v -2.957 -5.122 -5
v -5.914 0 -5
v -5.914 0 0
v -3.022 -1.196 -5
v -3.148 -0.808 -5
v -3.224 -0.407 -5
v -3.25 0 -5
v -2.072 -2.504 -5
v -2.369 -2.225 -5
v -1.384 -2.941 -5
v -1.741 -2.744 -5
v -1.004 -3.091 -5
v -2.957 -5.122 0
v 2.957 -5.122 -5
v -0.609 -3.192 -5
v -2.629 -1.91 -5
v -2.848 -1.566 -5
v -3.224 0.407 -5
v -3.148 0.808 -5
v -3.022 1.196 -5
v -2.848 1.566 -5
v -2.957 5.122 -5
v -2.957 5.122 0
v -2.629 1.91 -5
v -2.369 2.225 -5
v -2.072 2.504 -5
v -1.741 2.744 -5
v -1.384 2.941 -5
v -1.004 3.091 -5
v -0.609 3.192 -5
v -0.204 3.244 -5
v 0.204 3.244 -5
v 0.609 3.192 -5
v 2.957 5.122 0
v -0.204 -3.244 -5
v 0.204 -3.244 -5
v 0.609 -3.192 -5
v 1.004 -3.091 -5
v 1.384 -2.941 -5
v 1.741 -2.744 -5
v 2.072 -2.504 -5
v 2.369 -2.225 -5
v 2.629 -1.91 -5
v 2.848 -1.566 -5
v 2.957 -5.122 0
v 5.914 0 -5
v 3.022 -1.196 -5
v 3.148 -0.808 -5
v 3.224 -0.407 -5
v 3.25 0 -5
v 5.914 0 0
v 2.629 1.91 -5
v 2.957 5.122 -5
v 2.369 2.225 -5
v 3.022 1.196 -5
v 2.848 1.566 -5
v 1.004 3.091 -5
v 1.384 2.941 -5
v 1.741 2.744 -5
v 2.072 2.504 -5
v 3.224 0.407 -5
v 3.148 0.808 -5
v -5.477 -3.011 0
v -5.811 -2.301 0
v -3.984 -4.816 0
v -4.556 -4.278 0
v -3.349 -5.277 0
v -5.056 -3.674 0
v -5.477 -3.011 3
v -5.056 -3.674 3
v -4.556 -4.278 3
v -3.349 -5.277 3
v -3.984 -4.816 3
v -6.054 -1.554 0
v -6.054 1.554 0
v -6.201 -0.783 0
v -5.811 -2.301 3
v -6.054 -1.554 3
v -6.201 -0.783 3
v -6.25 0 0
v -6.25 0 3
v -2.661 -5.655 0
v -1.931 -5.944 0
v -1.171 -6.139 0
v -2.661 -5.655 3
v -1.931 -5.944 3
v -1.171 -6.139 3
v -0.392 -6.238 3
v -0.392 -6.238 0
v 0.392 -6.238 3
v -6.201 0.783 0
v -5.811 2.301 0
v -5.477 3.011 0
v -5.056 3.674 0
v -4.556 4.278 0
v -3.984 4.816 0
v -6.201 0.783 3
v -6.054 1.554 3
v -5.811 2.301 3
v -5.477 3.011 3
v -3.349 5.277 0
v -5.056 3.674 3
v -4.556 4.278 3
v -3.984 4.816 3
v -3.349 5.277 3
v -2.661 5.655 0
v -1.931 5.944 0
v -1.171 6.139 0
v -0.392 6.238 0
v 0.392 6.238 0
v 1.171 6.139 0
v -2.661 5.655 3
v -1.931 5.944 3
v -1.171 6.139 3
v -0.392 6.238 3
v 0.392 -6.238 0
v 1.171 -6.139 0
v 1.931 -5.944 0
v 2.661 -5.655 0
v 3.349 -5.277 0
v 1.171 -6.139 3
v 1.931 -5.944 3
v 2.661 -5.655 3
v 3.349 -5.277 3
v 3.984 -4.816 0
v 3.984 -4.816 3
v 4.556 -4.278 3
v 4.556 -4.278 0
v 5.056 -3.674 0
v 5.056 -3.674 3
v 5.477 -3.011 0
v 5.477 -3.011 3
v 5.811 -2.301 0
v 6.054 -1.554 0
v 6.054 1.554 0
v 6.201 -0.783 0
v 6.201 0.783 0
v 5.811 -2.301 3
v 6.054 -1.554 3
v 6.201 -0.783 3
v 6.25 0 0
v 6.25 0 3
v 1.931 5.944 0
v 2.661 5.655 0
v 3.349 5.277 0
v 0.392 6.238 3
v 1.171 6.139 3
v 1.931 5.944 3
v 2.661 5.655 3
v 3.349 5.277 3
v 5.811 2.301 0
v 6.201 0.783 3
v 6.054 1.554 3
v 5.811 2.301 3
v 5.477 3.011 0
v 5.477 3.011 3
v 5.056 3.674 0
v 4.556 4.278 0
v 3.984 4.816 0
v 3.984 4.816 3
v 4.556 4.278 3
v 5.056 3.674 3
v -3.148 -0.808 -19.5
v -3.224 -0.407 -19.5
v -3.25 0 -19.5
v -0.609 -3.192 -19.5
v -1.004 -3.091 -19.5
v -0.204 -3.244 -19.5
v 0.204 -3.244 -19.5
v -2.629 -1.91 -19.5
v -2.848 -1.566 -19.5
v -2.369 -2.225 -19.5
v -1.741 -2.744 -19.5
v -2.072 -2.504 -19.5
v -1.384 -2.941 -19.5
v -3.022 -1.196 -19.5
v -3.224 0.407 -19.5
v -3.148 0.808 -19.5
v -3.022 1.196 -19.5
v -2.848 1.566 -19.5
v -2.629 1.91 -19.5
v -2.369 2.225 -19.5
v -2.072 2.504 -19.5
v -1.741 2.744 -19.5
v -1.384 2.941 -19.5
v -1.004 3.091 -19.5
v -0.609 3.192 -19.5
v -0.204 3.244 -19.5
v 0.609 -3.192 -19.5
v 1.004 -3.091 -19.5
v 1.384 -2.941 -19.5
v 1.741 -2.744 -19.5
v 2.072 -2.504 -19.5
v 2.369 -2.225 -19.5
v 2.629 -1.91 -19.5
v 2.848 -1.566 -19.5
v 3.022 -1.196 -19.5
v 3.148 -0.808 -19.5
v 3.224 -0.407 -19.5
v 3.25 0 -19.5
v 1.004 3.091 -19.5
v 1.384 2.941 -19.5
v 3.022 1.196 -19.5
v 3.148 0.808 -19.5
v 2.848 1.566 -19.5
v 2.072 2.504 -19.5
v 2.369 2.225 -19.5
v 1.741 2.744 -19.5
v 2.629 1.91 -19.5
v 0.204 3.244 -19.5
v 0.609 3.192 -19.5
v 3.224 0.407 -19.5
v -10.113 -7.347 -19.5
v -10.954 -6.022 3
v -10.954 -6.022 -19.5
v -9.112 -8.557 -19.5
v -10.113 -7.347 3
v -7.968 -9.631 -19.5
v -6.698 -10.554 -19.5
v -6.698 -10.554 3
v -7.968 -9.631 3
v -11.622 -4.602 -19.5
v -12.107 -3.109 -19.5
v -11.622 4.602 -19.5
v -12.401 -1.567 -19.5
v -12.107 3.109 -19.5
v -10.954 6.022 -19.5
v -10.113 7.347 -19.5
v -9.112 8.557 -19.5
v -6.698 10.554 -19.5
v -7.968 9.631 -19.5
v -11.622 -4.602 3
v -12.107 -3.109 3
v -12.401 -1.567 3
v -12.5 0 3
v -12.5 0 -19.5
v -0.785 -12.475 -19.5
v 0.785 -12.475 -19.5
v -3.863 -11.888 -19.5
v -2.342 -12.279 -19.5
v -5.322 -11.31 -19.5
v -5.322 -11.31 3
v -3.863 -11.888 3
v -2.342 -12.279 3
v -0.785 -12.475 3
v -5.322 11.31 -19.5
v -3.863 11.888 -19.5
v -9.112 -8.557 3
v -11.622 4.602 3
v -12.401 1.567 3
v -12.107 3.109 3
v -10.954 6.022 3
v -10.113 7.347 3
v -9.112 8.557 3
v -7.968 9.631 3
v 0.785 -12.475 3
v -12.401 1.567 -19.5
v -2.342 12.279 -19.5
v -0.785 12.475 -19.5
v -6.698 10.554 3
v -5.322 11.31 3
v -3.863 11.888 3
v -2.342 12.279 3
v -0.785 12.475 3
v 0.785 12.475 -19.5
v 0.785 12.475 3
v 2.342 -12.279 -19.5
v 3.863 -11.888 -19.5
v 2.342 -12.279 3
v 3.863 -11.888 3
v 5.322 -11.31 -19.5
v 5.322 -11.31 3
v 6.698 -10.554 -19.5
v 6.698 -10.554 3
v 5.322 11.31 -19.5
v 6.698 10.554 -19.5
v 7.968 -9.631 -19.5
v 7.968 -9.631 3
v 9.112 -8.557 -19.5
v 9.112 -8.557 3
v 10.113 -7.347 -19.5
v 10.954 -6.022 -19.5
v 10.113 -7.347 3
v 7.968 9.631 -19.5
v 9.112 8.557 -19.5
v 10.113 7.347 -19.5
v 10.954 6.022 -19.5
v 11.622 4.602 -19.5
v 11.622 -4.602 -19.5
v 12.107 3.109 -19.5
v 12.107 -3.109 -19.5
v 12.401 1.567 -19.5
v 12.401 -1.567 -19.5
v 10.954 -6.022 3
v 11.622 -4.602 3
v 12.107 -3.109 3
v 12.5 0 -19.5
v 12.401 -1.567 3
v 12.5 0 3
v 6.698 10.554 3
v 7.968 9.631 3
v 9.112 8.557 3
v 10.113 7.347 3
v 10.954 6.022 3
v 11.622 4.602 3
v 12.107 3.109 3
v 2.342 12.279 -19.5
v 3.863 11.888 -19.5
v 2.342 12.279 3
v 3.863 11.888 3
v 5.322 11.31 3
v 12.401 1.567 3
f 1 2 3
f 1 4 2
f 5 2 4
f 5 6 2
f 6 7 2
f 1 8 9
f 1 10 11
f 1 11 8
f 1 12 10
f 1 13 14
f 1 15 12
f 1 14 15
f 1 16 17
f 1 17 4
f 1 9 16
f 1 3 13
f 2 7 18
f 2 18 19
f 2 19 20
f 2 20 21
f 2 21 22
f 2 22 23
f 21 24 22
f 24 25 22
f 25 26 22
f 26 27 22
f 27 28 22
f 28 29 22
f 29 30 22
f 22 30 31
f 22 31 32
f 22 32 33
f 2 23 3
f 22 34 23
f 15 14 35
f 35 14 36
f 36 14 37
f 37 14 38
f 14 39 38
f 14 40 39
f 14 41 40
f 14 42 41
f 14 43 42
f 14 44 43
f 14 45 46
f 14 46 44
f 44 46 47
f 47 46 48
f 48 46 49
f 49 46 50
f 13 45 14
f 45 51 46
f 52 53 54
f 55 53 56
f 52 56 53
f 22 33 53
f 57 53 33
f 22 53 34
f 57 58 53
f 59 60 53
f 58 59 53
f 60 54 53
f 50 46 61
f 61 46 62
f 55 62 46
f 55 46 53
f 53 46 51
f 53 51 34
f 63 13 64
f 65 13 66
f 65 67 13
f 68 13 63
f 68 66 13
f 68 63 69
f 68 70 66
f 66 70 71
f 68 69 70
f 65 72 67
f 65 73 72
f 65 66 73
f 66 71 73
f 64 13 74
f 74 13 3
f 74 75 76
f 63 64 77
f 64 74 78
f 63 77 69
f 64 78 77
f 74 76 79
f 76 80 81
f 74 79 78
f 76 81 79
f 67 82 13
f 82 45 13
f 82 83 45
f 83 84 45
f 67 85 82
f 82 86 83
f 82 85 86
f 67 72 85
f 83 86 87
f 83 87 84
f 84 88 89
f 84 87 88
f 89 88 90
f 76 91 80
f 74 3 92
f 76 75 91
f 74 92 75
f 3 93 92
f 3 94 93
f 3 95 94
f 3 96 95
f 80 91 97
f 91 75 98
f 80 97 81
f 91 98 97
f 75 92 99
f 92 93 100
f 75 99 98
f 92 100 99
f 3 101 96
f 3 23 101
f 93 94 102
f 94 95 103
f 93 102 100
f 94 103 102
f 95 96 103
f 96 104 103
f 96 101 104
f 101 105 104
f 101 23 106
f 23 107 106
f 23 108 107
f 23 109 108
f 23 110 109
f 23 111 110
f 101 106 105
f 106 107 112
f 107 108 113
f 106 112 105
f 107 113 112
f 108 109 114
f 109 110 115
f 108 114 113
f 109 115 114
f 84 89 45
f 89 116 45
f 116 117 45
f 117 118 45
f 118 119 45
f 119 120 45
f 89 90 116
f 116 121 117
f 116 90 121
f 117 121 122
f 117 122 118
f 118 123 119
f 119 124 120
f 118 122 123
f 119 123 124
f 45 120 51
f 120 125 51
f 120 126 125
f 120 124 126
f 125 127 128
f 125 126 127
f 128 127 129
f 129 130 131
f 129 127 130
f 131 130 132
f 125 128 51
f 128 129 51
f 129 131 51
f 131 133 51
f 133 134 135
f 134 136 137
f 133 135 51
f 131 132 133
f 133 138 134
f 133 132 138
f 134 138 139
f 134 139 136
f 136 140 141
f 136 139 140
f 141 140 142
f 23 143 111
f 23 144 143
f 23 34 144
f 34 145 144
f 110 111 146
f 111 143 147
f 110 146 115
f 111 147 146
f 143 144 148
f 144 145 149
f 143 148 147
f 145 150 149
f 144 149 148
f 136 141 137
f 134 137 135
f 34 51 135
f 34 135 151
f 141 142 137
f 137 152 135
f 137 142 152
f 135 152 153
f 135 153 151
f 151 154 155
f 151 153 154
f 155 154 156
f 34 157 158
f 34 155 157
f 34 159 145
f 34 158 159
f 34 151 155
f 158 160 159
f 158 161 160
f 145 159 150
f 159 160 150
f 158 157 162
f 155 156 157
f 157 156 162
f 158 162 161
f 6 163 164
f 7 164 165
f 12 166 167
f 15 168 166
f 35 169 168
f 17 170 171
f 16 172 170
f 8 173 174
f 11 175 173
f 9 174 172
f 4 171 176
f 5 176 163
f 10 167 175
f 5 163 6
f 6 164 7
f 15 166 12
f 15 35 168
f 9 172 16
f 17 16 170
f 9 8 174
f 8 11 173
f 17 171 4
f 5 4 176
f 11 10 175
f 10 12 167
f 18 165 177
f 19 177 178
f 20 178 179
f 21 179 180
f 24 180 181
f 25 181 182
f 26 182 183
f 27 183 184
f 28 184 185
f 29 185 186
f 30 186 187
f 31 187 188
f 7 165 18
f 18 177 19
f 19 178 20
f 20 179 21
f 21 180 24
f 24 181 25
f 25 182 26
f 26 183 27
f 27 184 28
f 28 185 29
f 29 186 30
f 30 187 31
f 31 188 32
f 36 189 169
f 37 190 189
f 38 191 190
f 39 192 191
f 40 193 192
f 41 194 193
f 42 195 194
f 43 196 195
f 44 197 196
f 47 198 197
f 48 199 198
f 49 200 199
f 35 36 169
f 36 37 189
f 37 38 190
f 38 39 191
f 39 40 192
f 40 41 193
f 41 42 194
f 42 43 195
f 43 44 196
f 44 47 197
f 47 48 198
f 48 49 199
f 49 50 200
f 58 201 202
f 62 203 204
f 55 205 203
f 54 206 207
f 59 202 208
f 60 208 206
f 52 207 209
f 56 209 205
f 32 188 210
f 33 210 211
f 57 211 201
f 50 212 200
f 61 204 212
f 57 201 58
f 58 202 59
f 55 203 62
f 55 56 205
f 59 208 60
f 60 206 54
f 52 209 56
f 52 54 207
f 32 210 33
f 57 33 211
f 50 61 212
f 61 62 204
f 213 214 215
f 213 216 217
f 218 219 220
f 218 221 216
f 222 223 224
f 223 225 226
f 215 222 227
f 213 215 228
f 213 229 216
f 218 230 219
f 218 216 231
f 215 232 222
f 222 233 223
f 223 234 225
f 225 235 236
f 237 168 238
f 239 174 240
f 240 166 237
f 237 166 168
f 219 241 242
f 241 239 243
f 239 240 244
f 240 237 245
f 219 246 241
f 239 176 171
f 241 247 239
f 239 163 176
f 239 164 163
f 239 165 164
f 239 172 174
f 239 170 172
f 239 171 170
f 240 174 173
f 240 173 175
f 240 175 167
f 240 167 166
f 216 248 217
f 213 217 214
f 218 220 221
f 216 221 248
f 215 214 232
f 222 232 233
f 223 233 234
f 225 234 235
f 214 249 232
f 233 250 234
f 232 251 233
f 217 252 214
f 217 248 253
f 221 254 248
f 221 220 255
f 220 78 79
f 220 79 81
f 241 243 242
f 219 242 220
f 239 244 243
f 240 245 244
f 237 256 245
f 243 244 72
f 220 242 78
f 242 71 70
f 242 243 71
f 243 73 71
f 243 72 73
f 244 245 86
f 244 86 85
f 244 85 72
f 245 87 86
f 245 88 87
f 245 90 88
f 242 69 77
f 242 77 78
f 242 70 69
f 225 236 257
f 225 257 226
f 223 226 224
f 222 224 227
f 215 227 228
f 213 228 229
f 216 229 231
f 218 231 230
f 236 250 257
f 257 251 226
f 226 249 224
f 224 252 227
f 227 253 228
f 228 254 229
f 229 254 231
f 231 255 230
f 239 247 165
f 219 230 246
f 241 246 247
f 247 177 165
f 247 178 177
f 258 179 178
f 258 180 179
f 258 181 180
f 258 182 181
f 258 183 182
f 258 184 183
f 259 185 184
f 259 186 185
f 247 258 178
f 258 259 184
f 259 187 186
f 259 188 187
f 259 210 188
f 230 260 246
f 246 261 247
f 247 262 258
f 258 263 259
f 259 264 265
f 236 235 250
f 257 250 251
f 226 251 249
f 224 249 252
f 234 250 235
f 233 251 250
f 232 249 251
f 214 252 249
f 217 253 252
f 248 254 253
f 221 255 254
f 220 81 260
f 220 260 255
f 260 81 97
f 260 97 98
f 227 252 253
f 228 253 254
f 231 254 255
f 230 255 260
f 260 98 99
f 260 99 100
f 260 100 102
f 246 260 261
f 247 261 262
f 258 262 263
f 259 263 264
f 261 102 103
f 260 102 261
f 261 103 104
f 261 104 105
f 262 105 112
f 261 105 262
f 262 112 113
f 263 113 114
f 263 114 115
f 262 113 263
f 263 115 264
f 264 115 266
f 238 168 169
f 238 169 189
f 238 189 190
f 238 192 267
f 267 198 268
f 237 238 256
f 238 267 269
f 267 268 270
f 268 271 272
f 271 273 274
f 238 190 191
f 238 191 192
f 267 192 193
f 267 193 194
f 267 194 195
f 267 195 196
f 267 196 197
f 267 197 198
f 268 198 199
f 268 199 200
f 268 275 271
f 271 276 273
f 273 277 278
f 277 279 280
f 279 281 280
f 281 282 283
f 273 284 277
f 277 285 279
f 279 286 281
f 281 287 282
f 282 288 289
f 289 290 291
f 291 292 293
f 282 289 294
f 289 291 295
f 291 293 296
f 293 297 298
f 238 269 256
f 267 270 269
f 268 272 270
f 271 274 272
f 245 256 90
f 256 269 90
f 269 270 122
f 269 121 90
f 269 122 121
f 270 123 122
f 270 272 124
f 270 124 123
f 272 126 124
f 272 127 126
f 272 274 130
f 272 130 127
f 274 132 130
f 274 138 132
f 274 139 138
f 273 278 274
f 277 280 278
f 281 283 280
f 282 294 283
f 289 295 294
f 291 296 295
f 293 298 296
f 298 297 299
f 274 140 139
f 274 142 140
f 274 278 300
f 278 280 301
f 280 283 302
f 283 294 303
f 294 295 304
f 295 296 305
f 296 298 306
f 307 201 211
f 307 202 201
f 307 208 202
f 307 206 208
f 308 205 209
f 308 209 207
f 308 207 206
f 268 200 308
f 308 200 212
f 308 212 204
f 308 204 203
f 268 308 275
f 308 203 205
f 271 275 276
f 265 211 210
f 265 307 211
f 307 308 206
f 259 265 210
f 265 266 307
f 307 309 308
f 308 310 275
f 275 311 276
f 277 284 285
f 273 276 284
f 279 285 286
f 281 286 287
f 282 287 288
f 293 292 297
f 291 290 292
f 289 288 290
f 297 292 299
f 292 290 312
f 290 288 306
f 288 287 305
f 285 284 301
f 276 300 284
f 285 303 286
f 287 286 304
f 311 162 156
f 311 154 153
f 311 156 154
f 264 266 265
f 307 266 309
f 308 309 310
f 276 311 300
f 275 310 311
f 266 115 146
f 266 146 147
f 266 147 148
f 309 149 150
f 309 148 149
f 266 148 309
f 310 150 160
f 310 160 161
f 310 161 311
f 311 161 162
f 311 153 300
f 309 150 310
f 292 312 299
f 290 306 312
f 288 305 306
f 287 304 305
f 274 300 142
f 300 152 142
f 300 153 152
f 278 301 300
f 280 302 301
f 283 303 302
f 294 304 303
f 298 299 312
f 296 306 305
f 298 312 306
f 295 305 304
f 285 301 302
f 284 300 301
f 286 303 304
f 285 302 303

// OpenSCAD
$fn = 50;

difference() {
	union() {
		translate(v = [0, 0, -19.5]) {
			cylinder(h = 22.5, r = 12.5);
		}
	}
	union() {
		translate(v = [0, 0, 0]) {
			rotate(a = [0, 0, 0]) {
				difference() {
					union() {
						translate(v = [0, 0, -5]) {
							linear_extrude(height = 5) {
								polygon(points = [[5.914249999999999, 0.0], [2.957125, 5.1218907443321156], [-2.9571249999999982, 5.1218907443321156], [-5.914249999999999, 7.242867331857232e-16], [-2.9571250000000022, -5.121890744332115], [2.9571249999999956, -5.121890744332118]]);
							}
						}
					}
					union();
				}
			}
		}
		#cylinder(h = 3, r = 6.25);
		#translate(v = [0, 0, -100.0]) {
			cylinder(h = 200, r = 3.25);
		}
	}
}
